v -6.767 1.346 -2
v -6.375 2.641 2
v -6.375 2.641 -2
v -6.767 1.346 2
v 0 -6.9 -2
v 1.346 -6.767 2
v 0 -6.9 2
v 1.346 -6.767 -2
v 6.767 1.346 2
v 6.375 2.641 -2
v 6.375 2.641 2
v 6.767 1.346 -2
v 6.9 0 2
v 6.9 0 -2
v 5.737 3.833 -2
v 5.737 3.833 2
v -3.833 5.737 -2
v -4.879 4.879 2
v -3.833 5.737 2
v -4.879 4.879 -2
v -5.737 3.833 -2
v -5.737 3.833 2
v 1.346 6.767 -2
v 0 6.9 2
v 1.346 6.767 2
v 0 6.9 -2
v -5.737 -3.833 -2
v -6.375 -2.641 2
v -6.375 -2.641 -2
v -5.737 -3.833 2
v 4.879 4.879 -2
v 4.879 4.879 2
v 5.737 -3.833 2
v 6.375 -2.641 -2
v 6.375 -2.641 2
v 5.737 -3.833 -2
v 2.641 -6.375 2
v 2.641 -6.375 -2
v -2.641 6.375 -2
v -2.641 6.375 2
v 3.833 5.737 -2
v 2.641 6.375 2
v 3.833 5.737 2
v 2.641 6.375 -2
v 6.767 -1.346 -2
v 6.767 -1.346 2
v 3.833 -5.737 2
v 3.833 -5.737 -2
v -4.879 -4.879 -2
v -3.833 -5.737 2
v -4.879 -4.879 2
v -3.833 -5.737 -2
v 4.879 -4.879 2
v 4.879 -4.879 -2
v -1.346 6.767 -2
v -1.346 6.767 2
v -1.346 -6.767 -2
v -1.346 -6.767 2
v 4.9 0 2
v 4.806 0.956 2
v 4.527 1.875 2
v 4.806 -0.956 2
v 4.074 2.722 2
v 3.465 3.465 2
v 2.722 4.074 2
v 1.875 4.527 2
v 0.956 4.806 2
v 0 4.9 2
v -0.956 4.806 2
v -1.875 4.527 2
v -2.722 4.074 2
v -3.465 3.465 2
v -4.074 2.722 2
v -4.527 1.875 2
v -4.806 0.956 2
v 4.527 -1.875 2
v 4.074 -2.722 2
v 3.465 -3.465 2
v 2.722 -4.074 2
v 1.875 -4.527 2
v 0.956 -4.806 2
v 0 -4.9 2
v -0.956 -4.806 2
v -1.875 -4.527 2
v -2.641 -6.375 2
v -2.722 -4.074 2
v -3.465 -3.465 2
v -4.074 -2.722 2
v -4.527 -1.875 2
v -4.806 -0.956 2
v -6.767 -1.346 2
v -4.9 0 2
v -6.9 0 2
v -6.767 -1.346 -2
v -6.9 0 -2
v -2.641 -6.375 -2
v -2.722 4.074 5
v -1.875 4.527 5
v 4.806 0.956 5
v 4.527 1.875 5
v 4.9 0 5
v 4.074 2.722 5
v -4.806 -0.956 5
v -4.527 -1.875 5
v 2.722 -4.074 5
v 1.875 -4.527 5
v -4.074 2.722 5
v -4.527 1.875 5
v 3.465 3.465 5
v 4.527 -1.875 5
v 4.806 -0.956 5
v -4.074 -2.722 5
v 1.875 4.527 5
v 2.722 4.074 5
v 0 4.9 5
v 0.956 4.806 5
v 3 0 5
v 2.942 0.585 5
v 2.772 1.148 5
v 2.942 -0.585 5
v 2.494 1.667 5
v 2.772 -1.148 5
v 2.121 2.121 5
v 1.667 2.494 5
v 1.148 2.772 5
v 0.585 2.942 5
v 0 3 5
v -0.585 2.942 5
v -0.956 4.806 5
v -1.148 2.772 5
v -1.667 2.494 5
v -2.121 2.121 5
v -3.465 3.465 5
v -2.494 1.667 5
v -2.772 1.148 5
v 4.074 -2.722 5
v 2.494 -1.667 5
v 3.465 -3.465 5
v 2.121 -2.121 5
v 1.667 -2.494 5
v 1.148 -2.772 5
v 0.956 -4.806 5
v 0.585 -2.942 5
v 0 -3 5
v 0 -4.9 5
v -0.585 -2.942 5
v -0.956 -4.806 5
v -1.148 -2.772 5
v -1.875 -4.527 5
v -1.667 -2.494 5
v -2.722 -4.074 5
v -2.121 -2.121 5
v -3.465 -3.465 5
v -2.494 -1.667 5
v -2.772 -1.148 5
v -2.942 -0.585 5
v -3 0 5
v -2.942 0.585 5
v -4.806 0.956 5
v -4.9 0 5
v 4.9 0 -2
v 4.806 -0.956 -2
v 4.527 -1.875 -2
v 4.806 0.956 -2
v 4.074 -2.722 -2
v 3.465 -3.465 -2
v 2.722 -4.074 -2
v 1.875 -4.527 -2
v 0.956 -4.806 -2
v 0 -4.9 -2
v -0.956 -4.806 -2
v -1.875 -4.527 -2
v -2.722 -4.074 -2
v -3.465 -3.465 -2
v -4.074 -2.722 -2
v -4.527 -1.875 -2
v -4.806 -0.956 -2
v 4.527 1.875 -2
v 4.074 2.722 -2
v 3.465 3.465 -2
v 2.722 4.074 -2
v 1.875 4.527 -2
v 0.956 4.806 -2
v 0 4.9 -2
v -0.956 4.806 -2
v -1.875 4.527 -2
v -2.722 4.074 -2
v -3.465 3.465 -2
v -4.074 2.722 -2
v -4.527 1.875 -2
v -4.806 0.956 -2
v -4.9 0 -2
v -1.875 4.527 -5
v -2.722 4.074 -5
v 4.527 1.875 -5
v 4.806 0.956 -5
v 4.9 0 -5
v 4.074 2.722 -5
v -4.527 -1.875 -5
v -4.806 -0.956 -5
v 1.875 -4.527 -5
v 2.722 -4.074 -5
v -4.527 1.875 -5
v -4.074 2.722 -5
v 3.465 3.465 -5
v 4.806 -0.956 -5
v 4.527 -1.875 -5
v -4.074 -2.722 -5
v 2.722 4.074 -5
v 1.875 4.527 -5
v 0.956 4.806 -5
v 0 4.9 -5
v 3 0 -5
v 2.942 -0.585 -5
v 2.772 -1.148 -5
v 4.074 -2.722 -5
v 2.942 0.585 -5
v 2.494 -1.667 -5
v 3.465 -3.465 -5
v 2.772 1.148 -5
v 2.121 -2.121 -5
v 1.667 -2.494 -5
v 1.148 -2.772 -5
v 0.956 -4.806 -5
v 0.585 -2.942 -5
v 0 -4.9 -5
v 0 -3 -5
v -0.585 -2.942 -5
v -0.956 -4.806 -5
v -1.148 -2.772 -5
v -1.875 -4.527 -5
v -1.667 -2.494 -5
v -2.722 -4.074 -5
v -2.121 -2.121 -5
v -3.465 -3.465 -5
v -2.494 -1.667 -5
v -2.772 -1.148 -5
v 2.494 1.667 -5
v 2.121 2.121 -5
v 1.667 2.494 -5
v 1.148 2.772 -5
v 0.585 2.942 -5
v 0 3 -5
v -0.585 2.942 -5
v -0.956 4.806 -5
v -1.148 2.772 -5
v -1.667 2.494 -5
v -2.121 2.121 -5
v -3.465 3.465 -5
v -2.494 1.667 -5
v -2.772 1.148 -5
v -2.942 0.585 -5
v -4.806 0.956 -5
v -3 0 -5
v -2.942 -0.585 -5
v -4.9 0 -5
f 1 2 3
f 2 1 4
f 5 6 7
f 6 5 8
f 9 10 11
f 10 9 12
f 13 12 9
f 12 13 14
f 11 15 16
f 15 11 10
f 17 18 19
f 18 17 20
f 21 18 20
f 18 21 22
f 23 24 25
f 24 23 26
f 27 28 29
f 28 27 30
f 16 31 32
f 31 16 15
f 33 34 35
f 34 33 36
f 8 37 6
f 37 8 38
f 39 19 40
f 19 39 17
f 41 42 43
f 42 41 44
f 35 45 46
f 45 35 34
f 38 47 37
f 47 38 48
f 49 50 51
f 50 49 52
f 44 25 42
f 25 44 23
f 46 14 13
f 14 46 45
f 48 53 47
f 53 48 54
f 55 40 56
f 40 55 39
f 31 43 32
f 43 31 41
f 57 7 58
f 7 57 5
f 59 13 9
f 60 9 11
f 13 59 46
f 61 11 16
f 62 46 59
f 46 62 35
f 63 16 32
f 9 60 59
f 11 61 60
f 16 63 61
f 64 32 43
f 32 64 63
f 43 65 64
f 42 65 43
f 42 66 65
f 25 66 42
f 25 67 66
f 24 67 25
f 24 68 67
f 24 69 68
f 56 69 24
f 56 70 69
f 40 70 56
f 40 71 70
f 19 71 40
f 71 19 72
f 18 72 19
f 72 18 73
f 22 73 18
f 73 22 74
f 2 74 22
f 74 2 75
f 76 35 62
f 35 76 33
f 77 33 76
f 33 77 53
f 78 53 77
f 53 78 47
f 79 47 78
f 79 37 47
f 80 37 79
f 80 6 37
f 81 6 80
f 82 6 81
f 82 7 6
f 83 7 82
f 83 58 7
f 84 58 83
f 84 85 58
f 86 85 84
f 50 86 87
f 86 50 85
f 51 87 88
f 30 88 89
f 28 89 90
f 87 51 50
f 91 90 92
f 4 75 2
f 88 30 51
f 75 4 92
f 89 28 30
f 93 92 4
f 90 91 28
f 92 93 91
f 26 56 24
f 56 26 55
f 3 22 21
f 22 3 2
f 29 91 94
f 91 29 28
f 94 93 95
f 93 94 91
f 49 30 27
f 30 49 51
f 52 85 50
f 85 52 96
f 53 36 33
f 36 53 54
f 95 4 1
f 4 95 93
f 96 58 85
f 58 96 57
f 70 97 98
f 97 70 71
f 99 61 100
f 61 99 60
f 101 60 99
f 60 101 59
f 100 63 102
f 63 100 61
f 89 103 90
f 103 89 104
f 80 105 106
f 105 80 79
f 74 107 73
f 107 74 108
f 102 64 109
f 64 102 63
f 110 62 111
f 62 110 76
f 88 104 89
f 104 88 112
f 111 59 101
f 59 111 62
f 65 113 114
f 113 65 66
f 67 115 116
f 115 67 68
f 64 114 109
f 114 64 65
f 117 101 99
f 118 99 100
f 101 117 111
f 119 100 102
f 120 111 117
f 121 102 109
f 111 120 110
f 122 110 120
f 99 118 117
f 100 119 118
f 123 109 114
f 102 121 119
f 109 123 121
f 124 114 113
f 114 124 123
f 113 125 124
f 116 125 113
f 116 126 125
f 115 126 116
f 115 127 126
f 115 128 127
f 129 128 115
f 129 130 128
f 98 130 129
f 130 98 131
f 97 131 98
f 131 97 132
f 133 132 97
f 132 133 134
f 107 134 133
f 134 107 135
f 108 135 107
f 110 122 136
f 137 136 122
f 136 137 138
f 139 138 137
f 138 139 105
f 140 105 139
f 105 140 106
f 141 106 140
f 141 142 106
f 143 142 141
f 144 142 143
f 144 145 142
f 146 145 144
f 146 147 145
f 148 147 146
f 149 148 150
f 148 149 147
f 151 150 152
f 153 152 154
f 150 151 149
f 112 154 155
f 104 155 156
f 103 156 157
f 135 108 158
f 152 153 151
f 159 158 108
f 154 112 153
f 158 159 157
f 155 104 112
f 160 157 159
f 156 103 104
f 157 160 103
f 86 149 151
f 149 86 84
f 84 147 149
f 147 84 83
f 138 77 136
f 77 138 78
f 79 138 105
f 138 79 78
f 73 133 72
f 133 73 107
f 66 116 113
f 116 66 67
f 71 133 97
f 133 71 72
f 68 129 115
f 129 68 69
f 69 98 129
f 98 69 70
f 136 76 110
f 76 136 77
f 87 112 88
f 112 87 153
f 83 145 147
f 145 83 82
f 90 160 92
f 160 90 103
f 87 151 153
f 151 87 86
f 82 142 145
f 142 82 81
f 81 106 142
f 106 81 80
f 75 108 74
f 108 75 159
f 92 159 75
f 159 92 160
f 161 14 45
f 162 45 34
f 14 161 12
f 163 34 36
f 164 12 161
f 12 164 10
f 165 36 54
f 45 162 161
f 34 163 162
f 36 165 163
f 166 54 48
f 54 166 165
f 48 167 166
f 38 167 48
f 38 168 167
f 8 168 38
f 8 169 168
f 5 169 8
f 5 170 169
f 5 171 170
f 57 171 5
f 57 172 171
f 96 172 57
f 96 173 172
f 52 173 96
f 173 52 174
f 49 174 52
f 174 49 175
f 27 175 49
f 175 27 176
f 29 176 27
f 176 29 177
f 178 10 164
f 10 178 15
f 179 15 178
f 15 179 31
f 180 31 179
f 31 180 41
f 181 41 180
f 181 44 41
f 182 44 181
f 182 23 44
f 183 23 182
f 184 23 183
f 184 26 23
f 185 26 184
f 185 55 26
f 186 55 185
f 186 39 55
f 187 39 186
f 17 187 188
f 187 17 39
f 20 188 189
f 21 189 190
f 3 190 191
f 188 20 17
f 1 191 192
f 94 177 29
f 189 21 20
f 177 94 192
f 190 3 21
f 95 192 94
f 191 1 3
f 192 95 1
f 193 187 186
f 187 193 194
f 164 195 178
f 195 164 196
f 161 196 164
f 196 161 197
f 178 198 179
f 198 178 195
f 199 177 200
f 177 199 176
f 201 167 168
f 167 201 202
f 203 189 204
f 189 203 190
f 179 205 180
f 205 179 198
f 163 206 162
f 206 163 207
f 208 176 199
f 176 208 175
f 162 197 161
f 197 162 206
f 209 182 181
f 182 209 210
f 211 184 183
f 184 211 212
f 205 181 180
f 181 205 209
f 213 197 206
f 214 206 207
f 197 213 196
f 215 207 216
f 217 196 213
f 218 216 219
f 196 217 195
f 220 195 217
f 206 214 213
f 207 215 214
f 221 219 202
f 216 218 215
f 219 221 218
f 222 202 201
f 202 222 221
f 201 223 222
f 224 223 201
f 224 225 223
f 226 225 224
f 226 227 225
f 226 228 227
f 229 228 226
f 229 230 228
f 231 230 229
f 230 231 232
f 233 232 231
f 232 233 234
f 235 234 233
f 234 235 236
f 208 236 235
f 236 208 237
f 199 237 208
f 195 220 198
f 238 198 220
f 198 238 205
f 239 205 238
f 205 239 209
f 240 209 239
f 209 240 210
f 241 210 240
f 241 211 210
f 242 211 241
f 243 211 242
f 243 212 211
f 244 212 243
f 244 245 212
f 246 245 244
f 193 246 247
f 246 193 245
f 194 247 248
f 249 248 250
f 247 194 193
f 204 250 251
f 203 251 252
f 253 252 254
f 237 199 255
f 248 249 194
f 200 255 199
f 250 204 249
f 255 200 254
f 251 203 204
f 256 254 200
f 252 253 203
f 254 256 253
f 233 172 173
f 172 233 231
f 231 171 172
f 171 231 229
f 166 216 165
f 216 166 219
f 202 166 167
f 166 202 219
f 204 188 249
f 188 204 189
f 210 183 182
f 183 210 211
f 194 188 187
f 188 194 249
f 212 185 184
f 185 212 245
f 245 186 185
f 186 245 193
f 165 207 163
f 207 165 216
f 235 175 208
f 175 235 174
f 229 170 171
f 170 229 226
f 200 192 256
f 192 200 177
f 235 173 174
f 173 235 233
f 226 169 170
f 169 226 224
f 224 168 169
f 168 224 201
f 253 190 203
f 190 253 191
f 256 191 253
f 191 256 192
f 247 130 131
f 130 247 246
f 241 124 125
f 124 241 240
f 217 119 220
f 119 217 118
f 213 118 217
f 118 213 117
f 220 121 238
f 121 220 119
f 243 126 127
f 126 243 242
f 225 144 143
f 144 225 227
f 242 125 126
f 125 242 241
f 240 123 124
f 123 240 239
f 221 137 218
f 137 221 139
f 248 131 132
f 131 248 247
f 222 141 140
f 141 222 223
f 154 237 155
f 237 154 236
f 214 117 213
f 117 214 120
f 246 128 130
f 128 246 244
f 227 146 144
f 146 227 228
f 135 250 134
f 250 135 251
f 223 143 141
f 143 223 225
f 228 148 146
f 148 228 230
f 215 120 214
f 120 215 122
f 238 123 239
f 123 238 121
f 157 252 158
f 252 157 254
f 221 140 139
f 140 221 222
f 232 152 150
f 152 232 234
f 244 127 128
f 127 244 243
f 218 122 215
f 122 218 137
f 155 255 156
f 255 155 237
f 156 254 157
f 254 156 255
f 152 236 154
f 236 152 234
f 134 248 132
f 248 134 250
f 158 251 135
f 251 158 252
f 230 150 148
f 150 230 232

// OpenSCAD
// ============================================================
// LINK — Design System 3D Modular
// ============================================================
// Peça de conexão entre dois furos do sistema modular.
// Une ATOM+ATOM, ATOM+PLATE, PLATE+PLATE ou qualquer
// combinação de peças com os mesmos parâmetros de furo.
//
// Estrutura (vista lateral):
//
//  [PEÇA 1]          [PEÇA 2]
//  ─────────┤                ├─────────
//   relevo  │                │  relevo
//  ─────────┤                ├─────────
//           │                │
//   ┌───────┤                ├───────┐
//   │  pin  ├────────────────┤  pin  │
//   │       │    [spacer]    │       │
//   └───────┤                ├───────┘
//
// Compatibilidade defaults:
//   ATOM  : atom_size=20, hole_d=10, relief_depth=2, relief_margin=2
//   PLATE : cell_size=20, thickness=5, hole_d=10, relief_depth=2, relief_margin=2
//
// Cálculo do pin_depth default:
//   PLATE é o caso mais restrito:
//   thickness(5) - relief_depth(2) = 3mm disponíveis → pin_depth = 3mm
//   Se encaixa na PLATE, encaixa no ATOM também ✅
//
// Parâmetros:
// - hole_d        : diâmetro do furo (igual ao ATOM/PLATE)
// - relief_depth  : profundidade do relevo (igual ao ATOM/PLATE)
// - relief_margin : margem ao redor do furo (igual ao ATOM/PLATE)
// - pin_depth     : profundidade que o pino entra no furo
// - spacer        : espaço entre as duas peças (0 = flush)
// - tolerance     : folga de encaixe (ajuste fino de impressão)
// - canal_d       : diâmetro do canal interno para fios (padrão 3mm = jumper Dupont; 0 = sólido)
// ============================================================

/* [Furos — manter igual ao ATOM/PLATE] */

// Diâmetro do furo (mm)
hole_d = 10; // [0.5:0.1:15]

// Profundidade do baixo relevo (mm)
relief_depth = 2; // [0.1:0.05:5]

// Margem do baixo relevo ao redor do furo (mm)
relief_margin = 2; // [0.5:0.1:5]

/* [Conector] */

// Profundidade que o pino entra em cada furo (mm)
// Default calculado para o caso mais restrito (PLATE thickness=5, relief=2 → 3mm disponíveis)
pin_depth = 3; // [1:0.5:20]

// Espaço entre as duas peças (0 = peças encostadas)
spacer = 0; // [0:0.5:20]

/* [Tolerância de impressão] */

// Folga de encaixe — reduz o conector para caber no furo
// Aumente se estiver apertado, reduza se estiver folgado
tolerance = 0.2; // [0:0.05:0.5]

/* [Canal interno para fios] */

// Diâmetro do canal interno para passagem de fios (0 = sólido)
// 6mm = passagem confortável para fios/cabos; zere para fechar
canal_d = 6; // [0:0.1:8]

/* [Qualidade] */
$fn = 32;

// ============================================================
// CALCULADOS
// ============================================================

// Diâmetro efetivo do pino (com tolerância)
pin_d = hole_d - tolerance;

// Diâmetro da flange que encaixa no relevo (com tolerância)
flange_d = hole_d + (relief_margin * 2) - tolerance;

// Altura total de cada metade = flange + pino
half_length = relief_depth + pin_depth;

// Comprimento total do LINK
total_length = (half_length * 2) + spacer;

// ============================================================
// MÓDULOS
// ============================================================

// ------------------------------------------------------------
// Módulo: metade do LINK (uma extremidade)
// Orientada em +Z a partir da origem
// ------------------------------------------------------------
module link_half() {
    // Flange — encaixa no baixo relevo da peça
    cylinder(d = flange_d, h = relief_depth);

    // Pino — entra no furo da peça
    translate([0, 0, relief_depth])
        cylinder(d = pin_d, h = pin_depth);
}

// ------------------------------------------------------------
// Módulo: LINK completo — simétrico, centrado na origem
// ------------------------------------------------------------
module link() {
    difference() {
        union() {
            // Metade superior (+Z)
            translate([0, 0, spacer / 2])
                link_half();

            // Metade inferior (-Z) — espelhada
            translate([0, 0, -spacer / 2])
                mirror([0, 0, 1])
                    link_half();

            // Spacer central (se > 0)
            if (spacer > 0)
                translate([0, 0, -spacer / 2])
                    cylinder(d = flange_d, h = spacer);
        }

        // Canal interno para fios (se canal_d > 0)
        if (canal_d > 0)
            translate([0, 0, -total_length / 2 - 0.01])
                cylinder(d = canal_d, h = total_length + 0.02);
    }
}

// ============================================================
// RENDER
// ============================================================
part_color = [0.35, 0.38, 0.42];
color(part_color) link();

// ============================================================
// INFO — dimensões no console
// ============================================================
echo("=== LINK ===");
echo(str("Comprimento total  : ", total_length, "mm"));
echo(str("Cada metade        : ", half_length, "mm"));
echo(str("Spacer central     : ", spacer, "mm"));
echo(str("Diâmetro do pino   : ", pin_d, "mm (furo receptor: ", hole_d, "mm)"));
echo(str("Diâmetro da flange : ", flange_d, "mm (relevo receptor: ", hole_d + relief_margin*2, "mm)"));
echo(str("Canal interno      : ", canal_d > 0 ? str(canal_d, "mm") : "sólido (canal fechado)"));
echo(str("Tolerância         : ", tolerance, "mm"));
echo("---");
echo(str("Compatível com PLATE thickness=5 : ", pin_depth <= 5 - relief_depth ? "SIM" : "VERIFICAR"));
echo(str("Compatível com ATOM  size=20     : ", pin_depth <= 20 - relief_depth ? "SIM" : "VERIFICAR"));
